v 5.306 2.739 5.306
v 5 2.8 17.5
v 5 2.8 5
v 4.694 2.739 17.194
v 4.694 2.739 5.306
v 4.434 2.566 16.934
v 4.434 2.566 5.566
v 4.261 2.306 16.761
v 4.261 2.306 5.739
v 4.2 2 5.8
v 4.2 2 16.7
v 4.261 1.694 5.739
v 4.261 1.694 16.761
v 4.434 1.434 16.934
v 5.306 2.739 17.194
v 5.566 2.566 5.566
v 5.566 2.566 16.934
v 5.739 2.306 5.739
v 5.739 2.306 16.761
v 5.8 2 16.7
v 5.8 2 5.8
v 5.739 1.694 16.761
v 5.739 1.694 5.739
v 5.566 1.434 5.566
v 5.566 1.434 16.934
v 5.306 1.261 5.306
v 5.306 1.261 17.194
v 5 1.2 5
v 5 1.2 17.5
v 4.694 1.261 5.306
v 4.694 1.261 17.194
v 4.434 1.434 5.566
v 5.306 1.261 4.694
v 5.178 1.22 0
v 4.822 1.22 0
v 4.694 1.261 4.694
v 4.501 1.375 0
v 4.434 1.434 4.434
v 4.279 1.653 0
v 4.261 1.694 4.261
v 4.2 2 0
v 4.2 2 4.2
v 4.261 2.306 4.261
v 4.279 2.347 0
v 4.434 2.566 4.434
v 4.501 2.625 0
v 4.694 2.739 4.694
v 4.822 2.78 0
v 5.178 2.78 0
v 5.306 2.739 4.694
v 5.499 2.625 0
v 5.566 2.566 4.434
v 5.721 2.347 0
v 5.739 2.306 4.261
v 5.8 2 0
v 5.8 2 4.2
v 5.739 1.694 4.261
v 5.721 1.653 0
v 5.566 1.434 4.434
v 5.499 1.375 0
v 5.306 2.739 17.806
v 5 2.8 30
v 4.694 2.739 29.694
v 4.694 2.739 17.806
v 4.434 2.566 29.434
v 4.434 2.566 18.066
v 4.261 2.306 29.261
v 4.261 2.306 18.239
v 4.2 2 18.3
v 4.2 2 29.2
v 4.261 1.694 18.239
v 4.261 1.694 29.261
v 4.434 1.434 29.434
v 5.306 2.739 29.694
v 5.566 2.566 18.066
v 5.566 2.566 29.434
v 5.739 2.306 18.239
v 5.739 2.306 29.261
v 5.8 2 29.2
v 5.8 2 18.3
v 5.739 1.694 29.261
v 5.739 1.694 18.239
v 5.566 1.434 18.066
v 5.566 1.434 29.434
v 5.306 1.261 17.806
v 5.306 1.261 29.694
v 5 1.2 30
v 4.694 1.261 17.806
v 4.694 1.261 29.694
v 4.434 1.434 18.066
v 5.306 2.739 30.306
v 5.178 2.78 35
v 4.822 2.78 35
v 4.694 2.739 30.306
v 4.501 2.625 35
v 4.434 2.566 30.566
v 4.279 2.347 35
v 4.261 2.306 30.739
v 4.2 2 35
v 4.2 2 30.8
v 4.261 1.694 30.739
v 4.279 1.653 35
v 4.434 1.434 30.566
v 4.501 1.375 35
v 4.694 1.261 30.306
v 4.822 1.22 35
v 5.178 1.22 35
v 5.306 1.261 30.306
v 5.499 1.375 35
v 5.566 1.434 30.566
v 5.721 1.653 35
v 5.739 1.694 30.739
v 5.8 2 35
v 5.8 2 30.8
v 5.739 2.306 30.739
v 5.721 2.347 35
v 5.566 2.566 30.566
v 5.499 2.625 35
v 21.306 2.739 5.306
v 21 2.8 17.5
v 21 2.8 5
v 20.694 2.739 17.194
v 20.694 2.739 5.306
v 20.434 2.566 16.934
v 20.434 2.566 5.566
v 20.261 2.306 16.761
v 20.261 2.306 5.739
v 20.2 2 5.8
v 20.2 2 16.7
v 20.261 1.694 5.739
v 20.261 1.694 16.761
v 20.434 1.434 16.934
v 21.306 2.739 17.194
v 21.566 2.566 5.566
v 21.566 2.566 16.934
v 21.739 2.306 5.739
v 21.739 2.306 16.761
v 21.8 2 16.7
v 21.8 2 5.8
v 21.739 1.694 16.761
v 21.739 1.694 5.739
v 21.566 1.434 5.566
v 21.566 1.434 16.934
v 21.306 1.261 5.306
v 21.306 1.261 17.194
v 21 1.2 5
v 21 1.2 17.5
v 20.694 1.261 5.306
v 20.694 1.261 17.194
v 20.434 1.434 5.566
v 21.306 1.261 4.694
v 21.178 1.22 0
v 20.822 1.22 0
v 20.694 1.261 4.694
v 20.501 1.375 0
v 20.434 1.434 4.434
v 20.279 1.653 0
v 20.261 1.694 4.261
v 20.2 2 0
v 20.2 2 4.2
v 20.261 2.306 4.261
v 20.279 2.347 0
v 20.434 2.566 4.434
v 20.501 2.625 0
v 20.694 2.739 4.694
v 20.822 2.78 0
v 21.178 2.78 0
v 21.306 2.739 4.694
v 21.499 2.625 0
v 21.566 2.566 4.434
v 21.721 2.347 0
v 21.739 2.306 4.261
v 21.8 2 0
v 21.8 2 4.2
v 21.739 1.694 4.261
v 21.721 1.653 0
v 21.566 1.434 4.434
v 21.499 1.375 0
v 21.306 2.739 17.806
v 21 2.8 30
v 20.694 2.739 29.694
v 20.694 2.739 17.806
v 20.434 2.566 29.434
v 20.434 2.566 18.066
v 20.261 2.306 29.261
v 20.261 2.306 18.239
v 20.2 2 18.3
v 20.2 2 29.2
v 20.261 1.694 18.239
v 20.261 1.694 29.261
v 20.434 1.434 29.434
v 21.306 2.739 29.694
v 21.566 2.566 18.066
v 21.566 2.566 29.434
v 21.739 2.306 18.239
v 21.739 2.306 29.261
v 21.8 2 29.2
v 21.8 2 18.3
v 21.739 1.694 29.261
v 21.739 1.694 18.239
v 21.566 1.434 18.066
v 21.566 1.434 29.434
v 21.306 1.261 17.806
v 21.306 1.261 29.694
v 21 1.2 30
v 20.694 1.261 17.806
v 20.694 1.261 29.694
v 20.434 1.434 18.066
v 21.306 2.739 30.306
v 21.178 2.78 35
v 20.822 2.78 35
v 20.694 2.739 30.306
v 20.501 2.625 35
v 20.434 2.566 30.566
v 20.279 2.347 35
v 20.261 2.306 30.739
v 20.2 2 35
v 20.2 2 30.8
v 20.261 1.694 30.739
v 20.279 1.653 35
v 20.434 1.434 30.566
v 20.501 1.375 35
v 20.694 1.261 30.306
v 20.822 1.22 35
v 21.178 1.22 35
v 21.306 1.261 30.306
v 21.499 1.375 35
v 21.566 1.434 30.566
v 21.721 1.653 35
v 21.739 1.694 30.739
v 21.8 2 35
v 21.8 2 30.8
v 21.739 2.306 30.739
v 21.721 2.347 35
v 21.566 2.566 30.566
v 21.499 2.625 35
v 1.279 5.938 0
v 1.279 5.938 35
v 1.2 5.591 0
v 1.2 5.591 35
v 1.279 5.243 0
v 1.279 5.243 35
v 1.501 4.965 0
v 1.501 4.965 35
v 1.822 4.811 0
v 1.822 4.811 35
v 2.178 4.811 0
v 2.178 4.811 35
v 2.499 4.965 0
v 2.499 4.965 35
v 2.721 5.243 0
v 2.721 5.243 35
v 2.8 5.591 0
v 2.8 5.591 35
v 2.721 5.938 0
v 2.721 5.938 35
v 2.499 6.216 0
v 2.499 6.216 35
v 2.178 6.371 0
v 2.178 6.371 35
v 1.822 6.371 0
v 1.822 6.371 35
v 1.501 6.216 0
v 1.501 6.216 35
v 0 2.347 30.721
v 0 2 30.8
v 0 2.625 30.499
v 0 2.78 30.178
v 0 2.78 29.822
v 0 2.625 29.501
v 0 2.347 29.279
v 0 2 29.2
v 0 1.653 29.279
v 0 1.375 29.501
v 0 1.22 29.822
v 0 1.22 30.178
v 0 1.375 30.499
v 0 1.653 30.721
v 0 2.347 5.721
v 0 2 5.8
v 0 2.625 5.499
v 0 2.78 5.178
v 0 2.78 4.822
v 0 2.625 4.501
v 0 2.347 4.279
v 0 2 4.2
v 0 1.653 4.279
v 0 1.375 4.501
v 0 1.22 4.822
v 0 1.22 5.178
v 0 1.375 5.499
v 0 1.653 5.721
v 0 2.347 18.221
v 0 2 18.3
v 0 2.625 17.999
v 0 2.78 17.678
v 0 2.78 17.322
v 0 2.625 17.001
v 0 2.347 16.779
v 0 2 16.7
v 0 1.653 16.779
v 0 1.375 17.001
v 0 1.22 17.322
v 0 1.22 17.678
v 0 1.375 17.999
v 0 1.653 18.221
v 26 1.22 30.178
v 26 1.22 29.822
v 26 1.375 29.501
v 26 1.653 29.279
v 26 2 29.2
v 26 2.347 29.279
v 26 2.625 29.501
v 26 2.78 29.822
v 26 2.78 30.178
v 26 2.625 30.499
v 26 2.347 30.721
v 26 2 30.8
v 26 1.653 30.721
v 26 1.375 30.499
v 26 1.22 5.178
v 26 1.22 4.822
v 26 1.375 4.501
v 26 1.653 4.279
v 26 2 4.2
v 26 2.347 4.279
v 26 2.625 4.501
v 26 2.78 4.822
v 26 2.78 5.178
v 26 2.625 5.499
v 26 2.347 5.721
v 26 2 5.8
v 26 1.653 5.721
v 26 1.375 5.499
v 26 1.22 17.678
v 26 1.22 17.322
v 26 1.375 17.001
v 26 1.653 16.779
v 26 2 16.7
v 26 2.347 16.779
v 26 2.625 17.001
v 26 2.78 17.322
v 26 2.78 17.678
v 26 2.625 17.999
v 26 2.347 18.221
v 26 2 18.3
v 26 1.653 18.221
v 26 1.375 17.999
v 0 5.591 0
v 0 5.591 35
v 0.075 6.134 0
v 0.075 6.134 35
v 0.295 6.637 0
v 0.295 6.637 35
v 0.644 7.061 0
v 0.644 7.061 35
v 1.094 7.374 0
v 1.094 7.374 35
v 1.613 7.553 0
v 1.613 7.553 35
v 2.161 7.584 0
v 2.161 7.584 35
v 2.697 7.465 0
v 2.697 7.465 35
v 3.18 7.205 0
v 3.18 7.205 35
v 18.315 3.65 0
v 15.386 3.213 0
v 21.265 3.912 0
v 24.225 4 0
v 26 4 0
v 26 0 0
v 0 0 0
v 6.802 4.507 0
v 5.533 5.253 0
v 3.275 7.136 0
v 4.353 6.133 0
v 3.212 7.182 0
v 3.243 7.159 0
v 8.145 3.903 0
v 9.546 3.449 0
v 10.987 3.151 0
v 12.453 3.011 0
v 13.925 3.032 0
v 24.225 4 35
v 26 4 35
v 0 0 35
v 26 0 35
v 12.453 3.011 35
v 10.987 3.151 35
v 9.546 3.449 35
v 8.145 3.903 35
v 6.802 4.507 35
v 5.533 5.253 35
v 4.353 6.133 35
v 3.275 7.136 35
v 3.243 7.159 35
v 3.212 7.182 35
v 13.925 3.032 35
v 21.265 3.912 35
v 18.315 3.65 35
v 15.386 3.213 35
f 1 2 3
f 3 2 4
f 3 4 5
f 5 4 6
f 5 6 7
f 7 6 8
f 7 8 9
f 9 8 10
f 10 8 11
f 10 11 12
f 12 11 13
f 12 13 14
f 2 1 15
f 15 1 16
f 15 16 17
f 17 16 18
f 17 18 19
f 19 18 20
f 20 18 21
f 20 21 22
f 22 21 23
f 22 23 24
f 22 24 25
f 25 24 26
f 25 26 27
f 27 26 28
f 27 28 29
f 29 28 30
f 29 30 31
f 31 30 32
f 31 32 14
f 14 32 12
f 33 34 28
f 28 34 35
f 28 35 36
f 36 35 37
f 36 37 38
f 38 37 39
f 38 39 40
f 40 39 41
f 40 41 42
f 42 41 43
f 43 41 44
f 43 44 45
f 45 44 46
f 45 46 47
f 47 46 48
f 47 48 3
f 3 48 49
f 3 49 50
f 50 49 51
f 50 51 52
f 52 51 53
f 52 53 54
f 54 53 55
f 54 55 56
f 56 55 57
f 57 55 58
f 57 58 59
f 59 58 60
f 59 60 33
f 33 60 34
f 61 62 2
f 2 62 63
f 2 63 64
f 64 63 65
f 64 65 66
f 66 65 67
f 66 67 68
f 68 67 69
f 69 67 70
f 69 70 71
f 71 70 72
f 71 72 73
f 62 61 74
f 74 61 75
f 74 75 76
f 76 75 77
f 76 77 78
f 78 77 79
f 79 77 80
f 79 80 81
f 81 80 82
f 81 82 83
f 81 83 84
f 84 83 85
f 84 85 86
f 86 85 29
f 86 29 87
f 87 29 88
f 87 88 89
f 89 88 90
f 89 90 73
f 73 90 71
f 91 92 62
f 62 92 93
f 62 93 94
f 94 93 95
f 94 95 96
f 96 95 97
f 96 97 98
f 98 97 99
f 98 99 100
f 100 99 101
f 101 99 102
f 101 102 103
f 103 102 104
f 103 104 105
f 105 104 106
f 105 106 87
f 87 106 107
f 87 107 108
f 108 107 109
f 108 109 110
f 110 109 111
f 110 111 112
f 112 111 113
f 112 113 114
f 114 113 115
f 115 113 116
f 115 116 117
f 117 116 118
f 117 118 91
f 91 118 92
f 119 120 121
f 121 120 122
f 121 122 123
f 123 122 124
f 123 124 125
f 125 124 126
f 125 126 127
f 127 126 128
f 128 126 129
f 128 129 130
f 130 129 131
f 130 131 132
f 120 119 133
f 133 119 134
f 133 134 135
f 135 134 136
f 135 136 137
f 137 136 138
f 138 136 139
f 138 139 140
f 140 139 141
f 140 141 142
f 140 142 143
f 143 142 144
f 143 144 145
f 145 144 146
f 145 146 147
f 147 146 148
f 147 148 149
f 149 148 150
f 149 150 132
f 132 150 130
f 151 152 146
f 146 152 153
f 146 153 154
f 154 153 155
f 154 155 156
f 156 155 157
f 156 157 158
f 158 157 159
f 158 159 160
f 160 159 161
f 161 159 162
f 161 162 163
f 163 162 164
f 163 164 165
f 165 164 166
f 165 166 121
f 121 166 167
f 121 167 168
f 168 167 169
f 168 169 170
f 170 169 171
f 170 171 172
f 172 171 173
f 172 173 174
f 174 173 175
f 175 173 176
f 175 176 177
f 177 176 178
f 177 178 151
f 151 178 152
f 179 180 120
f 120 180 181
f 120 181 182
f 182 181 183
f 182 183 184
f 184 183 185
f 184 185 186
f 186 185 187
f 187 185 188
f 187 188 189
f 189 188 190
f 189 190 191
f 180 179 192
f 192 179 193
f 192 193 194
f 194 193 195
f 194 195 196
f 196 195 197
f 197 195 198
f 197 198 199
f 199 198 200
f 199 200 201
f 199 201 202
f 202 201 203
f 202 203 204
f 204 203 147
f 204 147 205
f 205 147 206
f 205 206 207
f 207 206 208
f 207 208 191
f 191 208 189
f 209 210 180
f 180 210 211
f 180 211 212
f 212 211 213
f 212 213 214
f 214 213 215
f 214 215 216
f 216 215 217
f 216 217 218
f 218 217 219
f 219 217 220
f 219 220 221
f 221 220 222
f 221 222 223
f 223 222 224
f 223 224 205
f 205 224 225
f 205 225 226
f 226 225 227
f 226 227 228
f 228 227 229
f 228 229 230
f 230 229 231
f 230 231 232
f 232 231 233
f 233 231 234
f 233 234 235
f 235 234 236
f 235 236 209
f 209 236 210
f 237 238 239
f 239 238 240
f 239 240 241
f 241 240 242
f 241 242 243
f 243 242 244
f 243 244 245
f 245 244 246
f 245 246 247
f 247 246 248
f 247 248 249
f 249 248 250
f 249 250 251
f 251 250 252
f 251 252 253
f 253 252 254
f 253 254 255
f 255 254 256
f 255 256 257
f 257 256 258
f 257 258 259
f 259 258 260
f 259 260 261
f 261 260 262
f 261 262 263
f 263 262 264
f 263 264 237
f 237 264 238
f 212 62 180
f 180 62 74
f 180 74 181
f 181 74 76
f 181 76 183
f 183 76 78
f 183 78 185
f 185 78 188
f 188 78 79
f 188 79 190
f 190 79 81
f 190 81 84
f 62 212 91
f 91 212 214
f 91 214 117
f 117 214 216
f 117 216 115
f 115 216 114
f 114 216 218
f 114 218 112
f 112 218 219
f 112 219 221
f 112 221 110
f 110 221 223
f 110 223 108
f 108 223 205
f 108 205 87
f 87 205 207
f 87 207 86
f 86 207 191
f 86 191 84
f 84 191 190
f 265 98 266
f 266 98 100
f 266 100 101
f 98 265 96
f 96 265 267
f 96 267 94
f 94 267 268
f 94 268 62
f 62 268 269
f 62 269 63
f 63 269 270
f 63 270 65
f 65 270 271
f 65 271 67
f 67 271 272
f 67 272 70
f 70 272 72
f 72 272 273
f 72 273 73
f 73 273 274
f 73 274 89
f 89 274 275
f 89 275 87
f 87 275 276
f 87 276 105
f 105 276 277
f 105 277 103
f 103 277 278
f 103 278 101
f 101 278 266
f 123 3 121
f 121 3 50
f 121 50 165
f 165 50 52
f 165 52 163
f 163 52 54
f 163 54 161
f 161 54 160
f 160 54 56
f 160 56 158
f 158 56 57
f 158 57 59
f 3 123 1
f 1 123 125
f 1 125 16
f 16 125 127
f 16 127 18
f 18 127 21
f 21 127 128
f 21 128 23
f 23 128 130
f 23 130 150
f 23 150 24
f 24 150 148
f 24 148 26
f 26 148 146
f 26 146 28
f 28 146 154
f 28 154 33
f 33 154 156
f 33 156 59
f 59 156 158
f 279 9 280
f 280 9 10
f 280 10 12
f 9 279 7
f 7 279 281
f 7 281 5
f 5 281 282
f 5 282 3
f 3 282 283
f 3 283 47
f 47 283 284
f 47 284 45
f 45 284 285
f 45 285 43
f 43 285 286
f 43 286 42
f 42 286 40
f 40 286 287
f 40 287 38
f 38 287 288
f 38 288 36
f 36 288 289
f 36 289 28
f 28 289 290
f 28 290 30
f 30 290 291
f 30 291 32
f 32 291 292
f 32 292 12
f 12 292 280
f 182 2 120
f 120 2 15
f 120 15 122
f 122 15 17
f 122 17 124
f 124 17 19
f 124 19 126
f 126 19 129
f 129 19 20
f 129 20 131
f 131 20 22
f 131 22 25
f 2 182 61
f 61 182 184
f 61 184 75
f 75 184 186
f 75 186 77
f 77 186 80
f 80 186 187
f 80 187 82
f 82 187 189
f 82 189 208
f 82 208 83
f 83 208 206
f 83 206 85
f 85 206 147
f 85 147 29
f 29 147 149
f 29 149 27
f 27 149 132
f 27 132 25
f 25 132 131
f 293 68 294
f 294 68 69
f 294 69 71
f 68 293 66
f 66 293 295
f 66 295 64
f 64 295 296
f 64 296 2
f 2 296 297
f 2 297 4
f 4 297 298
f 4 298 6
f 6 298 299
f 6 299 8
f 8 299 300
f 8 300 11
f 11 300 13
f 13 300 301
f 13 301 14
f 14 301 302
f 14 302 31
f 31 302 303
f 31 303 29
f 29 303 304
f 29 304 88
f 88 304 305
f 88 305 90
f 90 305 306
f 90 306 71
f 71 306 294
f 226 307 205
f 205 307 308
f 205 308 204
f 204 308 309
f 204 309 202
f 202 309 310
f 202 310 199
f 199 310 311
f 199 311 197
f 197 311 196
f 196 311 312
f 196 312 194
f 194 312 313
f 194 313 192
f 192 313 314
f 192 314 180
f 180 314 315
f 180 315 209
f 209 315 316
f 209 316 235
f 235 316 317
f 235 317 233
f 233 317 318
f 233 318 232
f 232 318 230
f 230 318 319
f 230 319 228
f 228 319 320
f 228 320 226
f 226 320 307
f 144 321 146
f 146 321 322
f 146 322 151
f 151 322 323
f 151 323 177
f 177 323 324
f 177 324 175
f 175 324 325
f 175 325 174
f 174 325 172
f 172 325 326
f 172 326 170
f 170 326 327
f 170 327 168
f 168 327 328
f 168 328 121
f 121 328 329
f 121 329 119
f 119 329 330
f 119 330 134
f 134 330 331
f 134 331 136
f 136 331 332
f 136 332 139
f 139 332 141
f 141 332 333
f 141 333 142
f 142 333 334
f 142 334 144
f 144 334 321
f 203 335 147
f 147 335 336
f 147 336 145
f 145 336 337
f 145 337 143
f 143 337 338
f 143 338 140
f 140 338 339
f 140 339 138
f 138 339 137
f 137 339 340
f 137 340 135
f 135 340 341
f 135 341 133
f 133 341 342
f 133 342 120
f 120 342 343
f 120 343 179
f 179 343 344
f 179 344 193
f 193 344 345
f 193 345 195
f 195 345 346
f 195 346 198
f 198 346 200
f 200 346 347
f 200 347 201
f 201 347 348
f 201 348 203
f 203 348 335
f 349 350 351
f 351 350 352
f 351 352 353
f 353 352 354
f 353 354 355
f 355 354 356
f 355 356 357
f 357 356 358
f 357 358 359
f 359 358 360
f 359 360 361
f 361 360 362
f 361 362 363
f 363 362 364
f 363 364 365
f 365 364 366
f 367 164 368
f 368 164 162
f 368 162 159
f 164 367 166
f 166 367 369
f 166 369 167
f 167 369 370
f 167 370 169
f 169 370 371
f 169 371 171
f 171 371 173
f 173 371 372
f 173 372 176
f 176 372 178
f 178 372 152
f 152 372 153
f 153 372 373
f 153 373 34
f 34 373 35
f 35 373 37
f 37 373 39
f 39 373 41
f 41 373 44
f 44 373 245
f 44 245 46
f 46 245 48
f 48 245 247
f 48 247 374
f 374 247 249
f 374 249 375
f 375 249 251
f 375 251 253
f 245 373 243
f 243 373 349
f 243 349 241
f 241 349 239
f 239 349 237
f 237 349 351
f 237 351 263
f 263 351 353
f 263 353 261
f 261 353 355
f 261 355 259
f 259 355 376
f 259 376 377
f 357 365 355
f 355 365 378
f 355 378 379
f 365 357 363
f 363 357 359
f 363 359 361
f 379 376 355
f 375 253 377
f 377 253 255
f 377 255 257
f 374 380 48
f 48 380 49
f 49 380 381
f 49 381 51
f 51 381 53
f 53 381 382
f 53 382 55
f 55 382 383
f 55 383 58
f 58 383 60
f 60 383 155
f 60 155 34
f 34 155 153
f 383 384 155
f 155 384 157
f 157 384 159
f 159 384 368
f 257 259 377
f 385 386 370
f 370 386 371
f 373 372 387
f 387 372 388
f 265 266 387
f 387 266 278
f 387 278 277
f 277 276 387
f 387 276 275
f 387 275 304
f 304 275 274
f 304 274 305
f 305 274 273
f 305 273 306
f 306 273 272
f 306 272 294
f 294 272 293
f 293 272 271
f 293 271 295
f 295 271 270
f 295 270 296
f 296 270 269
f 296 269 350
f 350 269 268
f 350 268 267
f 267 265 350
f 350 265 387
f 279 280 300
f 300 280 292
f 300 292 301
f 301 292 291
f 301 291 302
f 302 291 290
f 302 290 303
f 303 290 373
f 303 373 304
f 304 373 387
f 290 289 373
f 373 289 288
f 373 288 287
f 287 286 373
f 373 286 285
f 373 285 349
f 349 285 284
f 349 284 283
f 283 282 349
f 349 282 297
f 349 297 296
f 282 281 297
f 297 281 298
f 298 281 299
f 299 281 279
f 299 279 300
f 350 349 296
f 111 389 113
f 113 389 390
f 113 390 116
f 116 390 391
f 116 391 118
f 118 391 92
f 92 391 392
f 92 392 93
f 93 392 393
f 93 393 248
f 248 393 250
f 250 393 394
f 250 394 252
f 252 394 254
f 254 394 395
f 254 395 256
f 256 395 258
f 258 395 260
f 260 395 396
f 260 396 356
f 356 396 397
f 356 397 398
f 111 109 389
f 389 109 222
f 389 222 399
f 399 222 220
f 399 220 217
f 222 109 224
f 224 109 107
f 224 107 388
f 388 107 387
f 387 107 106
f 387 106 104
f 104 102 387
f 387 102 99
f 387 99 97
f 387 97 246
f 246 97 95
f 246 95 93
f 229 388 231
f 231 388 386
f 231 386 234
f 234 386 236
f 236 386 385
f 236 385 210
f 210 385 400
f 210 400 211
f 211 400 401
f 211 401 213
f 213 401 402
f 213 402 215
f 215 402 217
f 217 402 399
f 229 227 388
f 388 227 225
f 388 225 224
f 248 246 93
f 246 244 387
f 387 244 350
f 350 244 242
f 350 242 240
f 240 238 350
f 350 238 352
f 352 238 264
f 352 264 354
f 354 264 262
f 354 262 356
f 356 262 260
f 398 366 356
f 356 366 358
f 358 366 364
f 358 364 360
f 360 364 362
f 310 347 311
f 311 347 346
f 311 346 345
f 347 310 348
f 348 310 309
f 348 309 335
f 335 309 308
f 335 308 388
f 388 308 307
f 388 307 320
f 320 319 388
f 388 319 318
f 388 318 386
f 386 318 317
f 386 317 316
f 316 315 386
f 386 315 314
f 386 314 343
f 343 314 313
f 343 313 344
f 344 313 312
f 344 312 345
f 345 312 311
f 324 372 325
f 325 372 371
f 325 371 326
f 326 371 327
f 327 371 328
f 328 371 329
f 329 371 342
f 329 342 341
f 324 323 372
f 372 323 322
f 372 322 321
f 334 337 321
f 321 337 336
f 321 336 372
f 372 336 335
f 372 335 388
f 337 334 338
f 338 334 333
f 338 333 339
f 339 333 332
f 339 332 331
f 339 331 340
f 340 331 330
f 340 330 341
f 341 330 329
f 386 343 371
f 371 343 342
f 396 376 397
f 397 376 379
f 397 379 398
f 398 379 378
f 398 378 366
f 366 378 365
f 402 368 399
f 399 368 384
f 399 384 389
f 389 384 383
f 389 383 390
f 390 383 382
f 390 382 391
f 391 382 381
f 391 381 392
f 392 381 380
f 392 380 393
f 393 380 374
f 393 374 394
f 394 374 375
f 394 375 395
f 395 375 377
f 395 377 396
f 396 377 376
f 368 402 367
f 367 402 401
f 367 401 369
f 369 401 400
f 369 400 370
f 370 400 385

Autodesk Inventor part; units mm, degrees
ref_plane "YZ Plane" through (0, 0, 0) normal (1, 0, 0) x (0, 1, 0)
ref_plane "XZ Plane" through (0, 0, 0) normal (0, 1, 0) x (-1, 0, 0)
ref_plane "XY Plane" through (0, 0, 0) normal (0, 0, 1) x (1, 0, 0)
sketch "スケッチ1" plane through (0, 0, 0) normal (0, 0, 1) x (1, 0, 0)
  line L0 (0, 16.5) -> (26, 16.5)
  line L1 (26, 16.5) -> (26, 0)
  line L2 (26, 0) -> (0, 0)
  line L3 (0, 0) -> (0, 16.5)
  circle A0 centre (13, 16.5) radius 12.5
  line L4 (13, 4) -> (26, 4)
  arc A1 (0, 10.25) -> (13, 4) centre (13, 20.645) ccw
  line L5 (13, 4) -> (0, 4)
  point P0 (25.5, 16.5)
  point P1 (0.5, 16.5)
  dimension "d0" = 25
  dimension "d1" = 26
  dimension "d2" = 16.5
  dimension "d8" = 6.25
  dimension "d9" = 6.25
extrude "押し出し1" add sketch "スケッチ1" along normal blind 35 contours L5 L3 A1 | L4 L1 L2 L3 L5
fillet "フィレット4" radius 2 1 edges at (0, 10.25, 17.5)
sketch "スケッチ2" plane through (26, 0, 0) normal (1, 0, 0) x (0, 0, -1)
  circle A0 centre (-30, 2) radius 0.8
  circle A1 centre (-5, 2) radius 0.8
  line L0 (0, 0) -> (-35, 0) projected
  line L1 (-35, 0) -> (-35, 4) projected
  line L2 (0, 0) -> (0, 4) projected
  circle A2 centre (-17.5, 2) radius 0.8
  dimension "d11" = 1.6
  dimension "d12" = 1.6
  dimension "d13" = 2
  dimension "d14" = 5
  dimension "d15" = 5
  dimension "d26" = 12.5
  dimension "d27" = 12.5
extrude "押し出し2" cut sketch "スケッチ2" against normal through all
sketch "スケッチ3" plane through (0, 0, 35) normal (0, 0, 1) x (1, 0, 0)
  circle A0 centre (2, 5.5906) radius 0.8
  circle A1 centre (5, 2) radius 0.8
  circle A2 centre (21, 2) radius 0.8
  line L0 (0, 0) -> (26, 0) projected
  line L1 (26, 0) -> (26, 4) projected
  line L2 (0, 5.5906) -> (0, 0) projected
  arc A3 (3.1799, 7.2054) -> (0, 5.5906) centre (2, 5.5906) ccw projected
  dimension "d18" = 1.6
  dimension "d19" = 1.6
  dimension "d20" = 1.6
  dimension "d21" = 2
  dimension "d22" = 5
  dimension "d23" = 5
extrude "押し出し3" cut sketch "スケッチ3" against normal through all
sketch "スケッチ4" plane through (0, 0, 35) normal (0, 0, 1) x (1, 0, 0)
  arc A0 (3.1799, 7.2054) -> (13, 4) centre (13, 20.645) ccw projected
  circle A1 centre (13, 16.5) radius 12.5 construction
  line L0 (13, 16.5) -> (13, 4) construction
  circle A2 centre (13, 16.5) radius 13.5
  point P0 (0, 0)
  dimension "d30" = 25
  dimension "d31" = 27
extrude "押し出し4" cut sketch "スケッチ4" against normal through all
fillet "フィレット5" radius 50 1 edges at (18.099, 4, 17.5)
equation "\"d8\" = d9"
equation "\"d26\" = d27"
properties part number "hipjoint_toleg_middle"
